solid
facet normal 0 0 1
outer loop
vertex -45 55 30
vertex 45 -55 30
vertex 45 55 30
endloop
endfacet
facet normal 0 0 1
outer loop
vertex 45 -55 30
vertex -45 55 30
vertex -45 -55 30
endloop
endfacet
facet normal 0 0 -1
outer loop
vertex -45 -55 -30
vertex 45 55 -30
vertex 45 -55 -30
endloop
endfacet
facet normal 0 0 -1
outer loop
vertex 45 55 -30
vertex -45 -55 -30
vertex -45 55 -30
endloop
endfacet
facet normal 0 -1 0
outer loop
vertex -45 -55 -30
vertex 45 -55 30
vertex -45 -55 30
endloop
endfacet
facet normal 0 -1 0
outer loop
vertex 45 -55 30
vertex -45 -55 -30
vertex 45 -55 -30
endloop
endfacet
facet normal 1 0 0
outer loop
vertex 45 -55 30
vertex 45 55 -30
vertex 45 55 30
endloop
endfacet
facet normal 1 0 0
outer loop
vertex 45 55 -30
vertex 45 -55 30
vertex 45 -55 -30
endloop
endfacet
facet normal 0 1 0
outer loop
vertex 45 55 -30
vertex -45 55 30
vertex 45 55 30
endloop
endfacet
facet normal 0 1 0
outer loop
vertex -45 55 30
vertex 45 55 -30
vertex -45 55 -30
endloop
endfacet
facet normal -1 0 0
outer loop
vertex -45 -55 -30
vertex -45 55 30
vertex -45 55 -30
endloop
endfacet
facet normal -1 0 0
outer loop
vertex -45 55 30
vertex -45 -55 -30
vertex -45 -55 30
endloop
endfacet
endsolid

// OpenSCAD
// ========================================
// a 90 x 110 x 60 mm box
// NeuroCAD canonical IR; dimensions are millimetres
// ========================================
$fn = 48;

cube(size=[90, 110, 60], center=true);
